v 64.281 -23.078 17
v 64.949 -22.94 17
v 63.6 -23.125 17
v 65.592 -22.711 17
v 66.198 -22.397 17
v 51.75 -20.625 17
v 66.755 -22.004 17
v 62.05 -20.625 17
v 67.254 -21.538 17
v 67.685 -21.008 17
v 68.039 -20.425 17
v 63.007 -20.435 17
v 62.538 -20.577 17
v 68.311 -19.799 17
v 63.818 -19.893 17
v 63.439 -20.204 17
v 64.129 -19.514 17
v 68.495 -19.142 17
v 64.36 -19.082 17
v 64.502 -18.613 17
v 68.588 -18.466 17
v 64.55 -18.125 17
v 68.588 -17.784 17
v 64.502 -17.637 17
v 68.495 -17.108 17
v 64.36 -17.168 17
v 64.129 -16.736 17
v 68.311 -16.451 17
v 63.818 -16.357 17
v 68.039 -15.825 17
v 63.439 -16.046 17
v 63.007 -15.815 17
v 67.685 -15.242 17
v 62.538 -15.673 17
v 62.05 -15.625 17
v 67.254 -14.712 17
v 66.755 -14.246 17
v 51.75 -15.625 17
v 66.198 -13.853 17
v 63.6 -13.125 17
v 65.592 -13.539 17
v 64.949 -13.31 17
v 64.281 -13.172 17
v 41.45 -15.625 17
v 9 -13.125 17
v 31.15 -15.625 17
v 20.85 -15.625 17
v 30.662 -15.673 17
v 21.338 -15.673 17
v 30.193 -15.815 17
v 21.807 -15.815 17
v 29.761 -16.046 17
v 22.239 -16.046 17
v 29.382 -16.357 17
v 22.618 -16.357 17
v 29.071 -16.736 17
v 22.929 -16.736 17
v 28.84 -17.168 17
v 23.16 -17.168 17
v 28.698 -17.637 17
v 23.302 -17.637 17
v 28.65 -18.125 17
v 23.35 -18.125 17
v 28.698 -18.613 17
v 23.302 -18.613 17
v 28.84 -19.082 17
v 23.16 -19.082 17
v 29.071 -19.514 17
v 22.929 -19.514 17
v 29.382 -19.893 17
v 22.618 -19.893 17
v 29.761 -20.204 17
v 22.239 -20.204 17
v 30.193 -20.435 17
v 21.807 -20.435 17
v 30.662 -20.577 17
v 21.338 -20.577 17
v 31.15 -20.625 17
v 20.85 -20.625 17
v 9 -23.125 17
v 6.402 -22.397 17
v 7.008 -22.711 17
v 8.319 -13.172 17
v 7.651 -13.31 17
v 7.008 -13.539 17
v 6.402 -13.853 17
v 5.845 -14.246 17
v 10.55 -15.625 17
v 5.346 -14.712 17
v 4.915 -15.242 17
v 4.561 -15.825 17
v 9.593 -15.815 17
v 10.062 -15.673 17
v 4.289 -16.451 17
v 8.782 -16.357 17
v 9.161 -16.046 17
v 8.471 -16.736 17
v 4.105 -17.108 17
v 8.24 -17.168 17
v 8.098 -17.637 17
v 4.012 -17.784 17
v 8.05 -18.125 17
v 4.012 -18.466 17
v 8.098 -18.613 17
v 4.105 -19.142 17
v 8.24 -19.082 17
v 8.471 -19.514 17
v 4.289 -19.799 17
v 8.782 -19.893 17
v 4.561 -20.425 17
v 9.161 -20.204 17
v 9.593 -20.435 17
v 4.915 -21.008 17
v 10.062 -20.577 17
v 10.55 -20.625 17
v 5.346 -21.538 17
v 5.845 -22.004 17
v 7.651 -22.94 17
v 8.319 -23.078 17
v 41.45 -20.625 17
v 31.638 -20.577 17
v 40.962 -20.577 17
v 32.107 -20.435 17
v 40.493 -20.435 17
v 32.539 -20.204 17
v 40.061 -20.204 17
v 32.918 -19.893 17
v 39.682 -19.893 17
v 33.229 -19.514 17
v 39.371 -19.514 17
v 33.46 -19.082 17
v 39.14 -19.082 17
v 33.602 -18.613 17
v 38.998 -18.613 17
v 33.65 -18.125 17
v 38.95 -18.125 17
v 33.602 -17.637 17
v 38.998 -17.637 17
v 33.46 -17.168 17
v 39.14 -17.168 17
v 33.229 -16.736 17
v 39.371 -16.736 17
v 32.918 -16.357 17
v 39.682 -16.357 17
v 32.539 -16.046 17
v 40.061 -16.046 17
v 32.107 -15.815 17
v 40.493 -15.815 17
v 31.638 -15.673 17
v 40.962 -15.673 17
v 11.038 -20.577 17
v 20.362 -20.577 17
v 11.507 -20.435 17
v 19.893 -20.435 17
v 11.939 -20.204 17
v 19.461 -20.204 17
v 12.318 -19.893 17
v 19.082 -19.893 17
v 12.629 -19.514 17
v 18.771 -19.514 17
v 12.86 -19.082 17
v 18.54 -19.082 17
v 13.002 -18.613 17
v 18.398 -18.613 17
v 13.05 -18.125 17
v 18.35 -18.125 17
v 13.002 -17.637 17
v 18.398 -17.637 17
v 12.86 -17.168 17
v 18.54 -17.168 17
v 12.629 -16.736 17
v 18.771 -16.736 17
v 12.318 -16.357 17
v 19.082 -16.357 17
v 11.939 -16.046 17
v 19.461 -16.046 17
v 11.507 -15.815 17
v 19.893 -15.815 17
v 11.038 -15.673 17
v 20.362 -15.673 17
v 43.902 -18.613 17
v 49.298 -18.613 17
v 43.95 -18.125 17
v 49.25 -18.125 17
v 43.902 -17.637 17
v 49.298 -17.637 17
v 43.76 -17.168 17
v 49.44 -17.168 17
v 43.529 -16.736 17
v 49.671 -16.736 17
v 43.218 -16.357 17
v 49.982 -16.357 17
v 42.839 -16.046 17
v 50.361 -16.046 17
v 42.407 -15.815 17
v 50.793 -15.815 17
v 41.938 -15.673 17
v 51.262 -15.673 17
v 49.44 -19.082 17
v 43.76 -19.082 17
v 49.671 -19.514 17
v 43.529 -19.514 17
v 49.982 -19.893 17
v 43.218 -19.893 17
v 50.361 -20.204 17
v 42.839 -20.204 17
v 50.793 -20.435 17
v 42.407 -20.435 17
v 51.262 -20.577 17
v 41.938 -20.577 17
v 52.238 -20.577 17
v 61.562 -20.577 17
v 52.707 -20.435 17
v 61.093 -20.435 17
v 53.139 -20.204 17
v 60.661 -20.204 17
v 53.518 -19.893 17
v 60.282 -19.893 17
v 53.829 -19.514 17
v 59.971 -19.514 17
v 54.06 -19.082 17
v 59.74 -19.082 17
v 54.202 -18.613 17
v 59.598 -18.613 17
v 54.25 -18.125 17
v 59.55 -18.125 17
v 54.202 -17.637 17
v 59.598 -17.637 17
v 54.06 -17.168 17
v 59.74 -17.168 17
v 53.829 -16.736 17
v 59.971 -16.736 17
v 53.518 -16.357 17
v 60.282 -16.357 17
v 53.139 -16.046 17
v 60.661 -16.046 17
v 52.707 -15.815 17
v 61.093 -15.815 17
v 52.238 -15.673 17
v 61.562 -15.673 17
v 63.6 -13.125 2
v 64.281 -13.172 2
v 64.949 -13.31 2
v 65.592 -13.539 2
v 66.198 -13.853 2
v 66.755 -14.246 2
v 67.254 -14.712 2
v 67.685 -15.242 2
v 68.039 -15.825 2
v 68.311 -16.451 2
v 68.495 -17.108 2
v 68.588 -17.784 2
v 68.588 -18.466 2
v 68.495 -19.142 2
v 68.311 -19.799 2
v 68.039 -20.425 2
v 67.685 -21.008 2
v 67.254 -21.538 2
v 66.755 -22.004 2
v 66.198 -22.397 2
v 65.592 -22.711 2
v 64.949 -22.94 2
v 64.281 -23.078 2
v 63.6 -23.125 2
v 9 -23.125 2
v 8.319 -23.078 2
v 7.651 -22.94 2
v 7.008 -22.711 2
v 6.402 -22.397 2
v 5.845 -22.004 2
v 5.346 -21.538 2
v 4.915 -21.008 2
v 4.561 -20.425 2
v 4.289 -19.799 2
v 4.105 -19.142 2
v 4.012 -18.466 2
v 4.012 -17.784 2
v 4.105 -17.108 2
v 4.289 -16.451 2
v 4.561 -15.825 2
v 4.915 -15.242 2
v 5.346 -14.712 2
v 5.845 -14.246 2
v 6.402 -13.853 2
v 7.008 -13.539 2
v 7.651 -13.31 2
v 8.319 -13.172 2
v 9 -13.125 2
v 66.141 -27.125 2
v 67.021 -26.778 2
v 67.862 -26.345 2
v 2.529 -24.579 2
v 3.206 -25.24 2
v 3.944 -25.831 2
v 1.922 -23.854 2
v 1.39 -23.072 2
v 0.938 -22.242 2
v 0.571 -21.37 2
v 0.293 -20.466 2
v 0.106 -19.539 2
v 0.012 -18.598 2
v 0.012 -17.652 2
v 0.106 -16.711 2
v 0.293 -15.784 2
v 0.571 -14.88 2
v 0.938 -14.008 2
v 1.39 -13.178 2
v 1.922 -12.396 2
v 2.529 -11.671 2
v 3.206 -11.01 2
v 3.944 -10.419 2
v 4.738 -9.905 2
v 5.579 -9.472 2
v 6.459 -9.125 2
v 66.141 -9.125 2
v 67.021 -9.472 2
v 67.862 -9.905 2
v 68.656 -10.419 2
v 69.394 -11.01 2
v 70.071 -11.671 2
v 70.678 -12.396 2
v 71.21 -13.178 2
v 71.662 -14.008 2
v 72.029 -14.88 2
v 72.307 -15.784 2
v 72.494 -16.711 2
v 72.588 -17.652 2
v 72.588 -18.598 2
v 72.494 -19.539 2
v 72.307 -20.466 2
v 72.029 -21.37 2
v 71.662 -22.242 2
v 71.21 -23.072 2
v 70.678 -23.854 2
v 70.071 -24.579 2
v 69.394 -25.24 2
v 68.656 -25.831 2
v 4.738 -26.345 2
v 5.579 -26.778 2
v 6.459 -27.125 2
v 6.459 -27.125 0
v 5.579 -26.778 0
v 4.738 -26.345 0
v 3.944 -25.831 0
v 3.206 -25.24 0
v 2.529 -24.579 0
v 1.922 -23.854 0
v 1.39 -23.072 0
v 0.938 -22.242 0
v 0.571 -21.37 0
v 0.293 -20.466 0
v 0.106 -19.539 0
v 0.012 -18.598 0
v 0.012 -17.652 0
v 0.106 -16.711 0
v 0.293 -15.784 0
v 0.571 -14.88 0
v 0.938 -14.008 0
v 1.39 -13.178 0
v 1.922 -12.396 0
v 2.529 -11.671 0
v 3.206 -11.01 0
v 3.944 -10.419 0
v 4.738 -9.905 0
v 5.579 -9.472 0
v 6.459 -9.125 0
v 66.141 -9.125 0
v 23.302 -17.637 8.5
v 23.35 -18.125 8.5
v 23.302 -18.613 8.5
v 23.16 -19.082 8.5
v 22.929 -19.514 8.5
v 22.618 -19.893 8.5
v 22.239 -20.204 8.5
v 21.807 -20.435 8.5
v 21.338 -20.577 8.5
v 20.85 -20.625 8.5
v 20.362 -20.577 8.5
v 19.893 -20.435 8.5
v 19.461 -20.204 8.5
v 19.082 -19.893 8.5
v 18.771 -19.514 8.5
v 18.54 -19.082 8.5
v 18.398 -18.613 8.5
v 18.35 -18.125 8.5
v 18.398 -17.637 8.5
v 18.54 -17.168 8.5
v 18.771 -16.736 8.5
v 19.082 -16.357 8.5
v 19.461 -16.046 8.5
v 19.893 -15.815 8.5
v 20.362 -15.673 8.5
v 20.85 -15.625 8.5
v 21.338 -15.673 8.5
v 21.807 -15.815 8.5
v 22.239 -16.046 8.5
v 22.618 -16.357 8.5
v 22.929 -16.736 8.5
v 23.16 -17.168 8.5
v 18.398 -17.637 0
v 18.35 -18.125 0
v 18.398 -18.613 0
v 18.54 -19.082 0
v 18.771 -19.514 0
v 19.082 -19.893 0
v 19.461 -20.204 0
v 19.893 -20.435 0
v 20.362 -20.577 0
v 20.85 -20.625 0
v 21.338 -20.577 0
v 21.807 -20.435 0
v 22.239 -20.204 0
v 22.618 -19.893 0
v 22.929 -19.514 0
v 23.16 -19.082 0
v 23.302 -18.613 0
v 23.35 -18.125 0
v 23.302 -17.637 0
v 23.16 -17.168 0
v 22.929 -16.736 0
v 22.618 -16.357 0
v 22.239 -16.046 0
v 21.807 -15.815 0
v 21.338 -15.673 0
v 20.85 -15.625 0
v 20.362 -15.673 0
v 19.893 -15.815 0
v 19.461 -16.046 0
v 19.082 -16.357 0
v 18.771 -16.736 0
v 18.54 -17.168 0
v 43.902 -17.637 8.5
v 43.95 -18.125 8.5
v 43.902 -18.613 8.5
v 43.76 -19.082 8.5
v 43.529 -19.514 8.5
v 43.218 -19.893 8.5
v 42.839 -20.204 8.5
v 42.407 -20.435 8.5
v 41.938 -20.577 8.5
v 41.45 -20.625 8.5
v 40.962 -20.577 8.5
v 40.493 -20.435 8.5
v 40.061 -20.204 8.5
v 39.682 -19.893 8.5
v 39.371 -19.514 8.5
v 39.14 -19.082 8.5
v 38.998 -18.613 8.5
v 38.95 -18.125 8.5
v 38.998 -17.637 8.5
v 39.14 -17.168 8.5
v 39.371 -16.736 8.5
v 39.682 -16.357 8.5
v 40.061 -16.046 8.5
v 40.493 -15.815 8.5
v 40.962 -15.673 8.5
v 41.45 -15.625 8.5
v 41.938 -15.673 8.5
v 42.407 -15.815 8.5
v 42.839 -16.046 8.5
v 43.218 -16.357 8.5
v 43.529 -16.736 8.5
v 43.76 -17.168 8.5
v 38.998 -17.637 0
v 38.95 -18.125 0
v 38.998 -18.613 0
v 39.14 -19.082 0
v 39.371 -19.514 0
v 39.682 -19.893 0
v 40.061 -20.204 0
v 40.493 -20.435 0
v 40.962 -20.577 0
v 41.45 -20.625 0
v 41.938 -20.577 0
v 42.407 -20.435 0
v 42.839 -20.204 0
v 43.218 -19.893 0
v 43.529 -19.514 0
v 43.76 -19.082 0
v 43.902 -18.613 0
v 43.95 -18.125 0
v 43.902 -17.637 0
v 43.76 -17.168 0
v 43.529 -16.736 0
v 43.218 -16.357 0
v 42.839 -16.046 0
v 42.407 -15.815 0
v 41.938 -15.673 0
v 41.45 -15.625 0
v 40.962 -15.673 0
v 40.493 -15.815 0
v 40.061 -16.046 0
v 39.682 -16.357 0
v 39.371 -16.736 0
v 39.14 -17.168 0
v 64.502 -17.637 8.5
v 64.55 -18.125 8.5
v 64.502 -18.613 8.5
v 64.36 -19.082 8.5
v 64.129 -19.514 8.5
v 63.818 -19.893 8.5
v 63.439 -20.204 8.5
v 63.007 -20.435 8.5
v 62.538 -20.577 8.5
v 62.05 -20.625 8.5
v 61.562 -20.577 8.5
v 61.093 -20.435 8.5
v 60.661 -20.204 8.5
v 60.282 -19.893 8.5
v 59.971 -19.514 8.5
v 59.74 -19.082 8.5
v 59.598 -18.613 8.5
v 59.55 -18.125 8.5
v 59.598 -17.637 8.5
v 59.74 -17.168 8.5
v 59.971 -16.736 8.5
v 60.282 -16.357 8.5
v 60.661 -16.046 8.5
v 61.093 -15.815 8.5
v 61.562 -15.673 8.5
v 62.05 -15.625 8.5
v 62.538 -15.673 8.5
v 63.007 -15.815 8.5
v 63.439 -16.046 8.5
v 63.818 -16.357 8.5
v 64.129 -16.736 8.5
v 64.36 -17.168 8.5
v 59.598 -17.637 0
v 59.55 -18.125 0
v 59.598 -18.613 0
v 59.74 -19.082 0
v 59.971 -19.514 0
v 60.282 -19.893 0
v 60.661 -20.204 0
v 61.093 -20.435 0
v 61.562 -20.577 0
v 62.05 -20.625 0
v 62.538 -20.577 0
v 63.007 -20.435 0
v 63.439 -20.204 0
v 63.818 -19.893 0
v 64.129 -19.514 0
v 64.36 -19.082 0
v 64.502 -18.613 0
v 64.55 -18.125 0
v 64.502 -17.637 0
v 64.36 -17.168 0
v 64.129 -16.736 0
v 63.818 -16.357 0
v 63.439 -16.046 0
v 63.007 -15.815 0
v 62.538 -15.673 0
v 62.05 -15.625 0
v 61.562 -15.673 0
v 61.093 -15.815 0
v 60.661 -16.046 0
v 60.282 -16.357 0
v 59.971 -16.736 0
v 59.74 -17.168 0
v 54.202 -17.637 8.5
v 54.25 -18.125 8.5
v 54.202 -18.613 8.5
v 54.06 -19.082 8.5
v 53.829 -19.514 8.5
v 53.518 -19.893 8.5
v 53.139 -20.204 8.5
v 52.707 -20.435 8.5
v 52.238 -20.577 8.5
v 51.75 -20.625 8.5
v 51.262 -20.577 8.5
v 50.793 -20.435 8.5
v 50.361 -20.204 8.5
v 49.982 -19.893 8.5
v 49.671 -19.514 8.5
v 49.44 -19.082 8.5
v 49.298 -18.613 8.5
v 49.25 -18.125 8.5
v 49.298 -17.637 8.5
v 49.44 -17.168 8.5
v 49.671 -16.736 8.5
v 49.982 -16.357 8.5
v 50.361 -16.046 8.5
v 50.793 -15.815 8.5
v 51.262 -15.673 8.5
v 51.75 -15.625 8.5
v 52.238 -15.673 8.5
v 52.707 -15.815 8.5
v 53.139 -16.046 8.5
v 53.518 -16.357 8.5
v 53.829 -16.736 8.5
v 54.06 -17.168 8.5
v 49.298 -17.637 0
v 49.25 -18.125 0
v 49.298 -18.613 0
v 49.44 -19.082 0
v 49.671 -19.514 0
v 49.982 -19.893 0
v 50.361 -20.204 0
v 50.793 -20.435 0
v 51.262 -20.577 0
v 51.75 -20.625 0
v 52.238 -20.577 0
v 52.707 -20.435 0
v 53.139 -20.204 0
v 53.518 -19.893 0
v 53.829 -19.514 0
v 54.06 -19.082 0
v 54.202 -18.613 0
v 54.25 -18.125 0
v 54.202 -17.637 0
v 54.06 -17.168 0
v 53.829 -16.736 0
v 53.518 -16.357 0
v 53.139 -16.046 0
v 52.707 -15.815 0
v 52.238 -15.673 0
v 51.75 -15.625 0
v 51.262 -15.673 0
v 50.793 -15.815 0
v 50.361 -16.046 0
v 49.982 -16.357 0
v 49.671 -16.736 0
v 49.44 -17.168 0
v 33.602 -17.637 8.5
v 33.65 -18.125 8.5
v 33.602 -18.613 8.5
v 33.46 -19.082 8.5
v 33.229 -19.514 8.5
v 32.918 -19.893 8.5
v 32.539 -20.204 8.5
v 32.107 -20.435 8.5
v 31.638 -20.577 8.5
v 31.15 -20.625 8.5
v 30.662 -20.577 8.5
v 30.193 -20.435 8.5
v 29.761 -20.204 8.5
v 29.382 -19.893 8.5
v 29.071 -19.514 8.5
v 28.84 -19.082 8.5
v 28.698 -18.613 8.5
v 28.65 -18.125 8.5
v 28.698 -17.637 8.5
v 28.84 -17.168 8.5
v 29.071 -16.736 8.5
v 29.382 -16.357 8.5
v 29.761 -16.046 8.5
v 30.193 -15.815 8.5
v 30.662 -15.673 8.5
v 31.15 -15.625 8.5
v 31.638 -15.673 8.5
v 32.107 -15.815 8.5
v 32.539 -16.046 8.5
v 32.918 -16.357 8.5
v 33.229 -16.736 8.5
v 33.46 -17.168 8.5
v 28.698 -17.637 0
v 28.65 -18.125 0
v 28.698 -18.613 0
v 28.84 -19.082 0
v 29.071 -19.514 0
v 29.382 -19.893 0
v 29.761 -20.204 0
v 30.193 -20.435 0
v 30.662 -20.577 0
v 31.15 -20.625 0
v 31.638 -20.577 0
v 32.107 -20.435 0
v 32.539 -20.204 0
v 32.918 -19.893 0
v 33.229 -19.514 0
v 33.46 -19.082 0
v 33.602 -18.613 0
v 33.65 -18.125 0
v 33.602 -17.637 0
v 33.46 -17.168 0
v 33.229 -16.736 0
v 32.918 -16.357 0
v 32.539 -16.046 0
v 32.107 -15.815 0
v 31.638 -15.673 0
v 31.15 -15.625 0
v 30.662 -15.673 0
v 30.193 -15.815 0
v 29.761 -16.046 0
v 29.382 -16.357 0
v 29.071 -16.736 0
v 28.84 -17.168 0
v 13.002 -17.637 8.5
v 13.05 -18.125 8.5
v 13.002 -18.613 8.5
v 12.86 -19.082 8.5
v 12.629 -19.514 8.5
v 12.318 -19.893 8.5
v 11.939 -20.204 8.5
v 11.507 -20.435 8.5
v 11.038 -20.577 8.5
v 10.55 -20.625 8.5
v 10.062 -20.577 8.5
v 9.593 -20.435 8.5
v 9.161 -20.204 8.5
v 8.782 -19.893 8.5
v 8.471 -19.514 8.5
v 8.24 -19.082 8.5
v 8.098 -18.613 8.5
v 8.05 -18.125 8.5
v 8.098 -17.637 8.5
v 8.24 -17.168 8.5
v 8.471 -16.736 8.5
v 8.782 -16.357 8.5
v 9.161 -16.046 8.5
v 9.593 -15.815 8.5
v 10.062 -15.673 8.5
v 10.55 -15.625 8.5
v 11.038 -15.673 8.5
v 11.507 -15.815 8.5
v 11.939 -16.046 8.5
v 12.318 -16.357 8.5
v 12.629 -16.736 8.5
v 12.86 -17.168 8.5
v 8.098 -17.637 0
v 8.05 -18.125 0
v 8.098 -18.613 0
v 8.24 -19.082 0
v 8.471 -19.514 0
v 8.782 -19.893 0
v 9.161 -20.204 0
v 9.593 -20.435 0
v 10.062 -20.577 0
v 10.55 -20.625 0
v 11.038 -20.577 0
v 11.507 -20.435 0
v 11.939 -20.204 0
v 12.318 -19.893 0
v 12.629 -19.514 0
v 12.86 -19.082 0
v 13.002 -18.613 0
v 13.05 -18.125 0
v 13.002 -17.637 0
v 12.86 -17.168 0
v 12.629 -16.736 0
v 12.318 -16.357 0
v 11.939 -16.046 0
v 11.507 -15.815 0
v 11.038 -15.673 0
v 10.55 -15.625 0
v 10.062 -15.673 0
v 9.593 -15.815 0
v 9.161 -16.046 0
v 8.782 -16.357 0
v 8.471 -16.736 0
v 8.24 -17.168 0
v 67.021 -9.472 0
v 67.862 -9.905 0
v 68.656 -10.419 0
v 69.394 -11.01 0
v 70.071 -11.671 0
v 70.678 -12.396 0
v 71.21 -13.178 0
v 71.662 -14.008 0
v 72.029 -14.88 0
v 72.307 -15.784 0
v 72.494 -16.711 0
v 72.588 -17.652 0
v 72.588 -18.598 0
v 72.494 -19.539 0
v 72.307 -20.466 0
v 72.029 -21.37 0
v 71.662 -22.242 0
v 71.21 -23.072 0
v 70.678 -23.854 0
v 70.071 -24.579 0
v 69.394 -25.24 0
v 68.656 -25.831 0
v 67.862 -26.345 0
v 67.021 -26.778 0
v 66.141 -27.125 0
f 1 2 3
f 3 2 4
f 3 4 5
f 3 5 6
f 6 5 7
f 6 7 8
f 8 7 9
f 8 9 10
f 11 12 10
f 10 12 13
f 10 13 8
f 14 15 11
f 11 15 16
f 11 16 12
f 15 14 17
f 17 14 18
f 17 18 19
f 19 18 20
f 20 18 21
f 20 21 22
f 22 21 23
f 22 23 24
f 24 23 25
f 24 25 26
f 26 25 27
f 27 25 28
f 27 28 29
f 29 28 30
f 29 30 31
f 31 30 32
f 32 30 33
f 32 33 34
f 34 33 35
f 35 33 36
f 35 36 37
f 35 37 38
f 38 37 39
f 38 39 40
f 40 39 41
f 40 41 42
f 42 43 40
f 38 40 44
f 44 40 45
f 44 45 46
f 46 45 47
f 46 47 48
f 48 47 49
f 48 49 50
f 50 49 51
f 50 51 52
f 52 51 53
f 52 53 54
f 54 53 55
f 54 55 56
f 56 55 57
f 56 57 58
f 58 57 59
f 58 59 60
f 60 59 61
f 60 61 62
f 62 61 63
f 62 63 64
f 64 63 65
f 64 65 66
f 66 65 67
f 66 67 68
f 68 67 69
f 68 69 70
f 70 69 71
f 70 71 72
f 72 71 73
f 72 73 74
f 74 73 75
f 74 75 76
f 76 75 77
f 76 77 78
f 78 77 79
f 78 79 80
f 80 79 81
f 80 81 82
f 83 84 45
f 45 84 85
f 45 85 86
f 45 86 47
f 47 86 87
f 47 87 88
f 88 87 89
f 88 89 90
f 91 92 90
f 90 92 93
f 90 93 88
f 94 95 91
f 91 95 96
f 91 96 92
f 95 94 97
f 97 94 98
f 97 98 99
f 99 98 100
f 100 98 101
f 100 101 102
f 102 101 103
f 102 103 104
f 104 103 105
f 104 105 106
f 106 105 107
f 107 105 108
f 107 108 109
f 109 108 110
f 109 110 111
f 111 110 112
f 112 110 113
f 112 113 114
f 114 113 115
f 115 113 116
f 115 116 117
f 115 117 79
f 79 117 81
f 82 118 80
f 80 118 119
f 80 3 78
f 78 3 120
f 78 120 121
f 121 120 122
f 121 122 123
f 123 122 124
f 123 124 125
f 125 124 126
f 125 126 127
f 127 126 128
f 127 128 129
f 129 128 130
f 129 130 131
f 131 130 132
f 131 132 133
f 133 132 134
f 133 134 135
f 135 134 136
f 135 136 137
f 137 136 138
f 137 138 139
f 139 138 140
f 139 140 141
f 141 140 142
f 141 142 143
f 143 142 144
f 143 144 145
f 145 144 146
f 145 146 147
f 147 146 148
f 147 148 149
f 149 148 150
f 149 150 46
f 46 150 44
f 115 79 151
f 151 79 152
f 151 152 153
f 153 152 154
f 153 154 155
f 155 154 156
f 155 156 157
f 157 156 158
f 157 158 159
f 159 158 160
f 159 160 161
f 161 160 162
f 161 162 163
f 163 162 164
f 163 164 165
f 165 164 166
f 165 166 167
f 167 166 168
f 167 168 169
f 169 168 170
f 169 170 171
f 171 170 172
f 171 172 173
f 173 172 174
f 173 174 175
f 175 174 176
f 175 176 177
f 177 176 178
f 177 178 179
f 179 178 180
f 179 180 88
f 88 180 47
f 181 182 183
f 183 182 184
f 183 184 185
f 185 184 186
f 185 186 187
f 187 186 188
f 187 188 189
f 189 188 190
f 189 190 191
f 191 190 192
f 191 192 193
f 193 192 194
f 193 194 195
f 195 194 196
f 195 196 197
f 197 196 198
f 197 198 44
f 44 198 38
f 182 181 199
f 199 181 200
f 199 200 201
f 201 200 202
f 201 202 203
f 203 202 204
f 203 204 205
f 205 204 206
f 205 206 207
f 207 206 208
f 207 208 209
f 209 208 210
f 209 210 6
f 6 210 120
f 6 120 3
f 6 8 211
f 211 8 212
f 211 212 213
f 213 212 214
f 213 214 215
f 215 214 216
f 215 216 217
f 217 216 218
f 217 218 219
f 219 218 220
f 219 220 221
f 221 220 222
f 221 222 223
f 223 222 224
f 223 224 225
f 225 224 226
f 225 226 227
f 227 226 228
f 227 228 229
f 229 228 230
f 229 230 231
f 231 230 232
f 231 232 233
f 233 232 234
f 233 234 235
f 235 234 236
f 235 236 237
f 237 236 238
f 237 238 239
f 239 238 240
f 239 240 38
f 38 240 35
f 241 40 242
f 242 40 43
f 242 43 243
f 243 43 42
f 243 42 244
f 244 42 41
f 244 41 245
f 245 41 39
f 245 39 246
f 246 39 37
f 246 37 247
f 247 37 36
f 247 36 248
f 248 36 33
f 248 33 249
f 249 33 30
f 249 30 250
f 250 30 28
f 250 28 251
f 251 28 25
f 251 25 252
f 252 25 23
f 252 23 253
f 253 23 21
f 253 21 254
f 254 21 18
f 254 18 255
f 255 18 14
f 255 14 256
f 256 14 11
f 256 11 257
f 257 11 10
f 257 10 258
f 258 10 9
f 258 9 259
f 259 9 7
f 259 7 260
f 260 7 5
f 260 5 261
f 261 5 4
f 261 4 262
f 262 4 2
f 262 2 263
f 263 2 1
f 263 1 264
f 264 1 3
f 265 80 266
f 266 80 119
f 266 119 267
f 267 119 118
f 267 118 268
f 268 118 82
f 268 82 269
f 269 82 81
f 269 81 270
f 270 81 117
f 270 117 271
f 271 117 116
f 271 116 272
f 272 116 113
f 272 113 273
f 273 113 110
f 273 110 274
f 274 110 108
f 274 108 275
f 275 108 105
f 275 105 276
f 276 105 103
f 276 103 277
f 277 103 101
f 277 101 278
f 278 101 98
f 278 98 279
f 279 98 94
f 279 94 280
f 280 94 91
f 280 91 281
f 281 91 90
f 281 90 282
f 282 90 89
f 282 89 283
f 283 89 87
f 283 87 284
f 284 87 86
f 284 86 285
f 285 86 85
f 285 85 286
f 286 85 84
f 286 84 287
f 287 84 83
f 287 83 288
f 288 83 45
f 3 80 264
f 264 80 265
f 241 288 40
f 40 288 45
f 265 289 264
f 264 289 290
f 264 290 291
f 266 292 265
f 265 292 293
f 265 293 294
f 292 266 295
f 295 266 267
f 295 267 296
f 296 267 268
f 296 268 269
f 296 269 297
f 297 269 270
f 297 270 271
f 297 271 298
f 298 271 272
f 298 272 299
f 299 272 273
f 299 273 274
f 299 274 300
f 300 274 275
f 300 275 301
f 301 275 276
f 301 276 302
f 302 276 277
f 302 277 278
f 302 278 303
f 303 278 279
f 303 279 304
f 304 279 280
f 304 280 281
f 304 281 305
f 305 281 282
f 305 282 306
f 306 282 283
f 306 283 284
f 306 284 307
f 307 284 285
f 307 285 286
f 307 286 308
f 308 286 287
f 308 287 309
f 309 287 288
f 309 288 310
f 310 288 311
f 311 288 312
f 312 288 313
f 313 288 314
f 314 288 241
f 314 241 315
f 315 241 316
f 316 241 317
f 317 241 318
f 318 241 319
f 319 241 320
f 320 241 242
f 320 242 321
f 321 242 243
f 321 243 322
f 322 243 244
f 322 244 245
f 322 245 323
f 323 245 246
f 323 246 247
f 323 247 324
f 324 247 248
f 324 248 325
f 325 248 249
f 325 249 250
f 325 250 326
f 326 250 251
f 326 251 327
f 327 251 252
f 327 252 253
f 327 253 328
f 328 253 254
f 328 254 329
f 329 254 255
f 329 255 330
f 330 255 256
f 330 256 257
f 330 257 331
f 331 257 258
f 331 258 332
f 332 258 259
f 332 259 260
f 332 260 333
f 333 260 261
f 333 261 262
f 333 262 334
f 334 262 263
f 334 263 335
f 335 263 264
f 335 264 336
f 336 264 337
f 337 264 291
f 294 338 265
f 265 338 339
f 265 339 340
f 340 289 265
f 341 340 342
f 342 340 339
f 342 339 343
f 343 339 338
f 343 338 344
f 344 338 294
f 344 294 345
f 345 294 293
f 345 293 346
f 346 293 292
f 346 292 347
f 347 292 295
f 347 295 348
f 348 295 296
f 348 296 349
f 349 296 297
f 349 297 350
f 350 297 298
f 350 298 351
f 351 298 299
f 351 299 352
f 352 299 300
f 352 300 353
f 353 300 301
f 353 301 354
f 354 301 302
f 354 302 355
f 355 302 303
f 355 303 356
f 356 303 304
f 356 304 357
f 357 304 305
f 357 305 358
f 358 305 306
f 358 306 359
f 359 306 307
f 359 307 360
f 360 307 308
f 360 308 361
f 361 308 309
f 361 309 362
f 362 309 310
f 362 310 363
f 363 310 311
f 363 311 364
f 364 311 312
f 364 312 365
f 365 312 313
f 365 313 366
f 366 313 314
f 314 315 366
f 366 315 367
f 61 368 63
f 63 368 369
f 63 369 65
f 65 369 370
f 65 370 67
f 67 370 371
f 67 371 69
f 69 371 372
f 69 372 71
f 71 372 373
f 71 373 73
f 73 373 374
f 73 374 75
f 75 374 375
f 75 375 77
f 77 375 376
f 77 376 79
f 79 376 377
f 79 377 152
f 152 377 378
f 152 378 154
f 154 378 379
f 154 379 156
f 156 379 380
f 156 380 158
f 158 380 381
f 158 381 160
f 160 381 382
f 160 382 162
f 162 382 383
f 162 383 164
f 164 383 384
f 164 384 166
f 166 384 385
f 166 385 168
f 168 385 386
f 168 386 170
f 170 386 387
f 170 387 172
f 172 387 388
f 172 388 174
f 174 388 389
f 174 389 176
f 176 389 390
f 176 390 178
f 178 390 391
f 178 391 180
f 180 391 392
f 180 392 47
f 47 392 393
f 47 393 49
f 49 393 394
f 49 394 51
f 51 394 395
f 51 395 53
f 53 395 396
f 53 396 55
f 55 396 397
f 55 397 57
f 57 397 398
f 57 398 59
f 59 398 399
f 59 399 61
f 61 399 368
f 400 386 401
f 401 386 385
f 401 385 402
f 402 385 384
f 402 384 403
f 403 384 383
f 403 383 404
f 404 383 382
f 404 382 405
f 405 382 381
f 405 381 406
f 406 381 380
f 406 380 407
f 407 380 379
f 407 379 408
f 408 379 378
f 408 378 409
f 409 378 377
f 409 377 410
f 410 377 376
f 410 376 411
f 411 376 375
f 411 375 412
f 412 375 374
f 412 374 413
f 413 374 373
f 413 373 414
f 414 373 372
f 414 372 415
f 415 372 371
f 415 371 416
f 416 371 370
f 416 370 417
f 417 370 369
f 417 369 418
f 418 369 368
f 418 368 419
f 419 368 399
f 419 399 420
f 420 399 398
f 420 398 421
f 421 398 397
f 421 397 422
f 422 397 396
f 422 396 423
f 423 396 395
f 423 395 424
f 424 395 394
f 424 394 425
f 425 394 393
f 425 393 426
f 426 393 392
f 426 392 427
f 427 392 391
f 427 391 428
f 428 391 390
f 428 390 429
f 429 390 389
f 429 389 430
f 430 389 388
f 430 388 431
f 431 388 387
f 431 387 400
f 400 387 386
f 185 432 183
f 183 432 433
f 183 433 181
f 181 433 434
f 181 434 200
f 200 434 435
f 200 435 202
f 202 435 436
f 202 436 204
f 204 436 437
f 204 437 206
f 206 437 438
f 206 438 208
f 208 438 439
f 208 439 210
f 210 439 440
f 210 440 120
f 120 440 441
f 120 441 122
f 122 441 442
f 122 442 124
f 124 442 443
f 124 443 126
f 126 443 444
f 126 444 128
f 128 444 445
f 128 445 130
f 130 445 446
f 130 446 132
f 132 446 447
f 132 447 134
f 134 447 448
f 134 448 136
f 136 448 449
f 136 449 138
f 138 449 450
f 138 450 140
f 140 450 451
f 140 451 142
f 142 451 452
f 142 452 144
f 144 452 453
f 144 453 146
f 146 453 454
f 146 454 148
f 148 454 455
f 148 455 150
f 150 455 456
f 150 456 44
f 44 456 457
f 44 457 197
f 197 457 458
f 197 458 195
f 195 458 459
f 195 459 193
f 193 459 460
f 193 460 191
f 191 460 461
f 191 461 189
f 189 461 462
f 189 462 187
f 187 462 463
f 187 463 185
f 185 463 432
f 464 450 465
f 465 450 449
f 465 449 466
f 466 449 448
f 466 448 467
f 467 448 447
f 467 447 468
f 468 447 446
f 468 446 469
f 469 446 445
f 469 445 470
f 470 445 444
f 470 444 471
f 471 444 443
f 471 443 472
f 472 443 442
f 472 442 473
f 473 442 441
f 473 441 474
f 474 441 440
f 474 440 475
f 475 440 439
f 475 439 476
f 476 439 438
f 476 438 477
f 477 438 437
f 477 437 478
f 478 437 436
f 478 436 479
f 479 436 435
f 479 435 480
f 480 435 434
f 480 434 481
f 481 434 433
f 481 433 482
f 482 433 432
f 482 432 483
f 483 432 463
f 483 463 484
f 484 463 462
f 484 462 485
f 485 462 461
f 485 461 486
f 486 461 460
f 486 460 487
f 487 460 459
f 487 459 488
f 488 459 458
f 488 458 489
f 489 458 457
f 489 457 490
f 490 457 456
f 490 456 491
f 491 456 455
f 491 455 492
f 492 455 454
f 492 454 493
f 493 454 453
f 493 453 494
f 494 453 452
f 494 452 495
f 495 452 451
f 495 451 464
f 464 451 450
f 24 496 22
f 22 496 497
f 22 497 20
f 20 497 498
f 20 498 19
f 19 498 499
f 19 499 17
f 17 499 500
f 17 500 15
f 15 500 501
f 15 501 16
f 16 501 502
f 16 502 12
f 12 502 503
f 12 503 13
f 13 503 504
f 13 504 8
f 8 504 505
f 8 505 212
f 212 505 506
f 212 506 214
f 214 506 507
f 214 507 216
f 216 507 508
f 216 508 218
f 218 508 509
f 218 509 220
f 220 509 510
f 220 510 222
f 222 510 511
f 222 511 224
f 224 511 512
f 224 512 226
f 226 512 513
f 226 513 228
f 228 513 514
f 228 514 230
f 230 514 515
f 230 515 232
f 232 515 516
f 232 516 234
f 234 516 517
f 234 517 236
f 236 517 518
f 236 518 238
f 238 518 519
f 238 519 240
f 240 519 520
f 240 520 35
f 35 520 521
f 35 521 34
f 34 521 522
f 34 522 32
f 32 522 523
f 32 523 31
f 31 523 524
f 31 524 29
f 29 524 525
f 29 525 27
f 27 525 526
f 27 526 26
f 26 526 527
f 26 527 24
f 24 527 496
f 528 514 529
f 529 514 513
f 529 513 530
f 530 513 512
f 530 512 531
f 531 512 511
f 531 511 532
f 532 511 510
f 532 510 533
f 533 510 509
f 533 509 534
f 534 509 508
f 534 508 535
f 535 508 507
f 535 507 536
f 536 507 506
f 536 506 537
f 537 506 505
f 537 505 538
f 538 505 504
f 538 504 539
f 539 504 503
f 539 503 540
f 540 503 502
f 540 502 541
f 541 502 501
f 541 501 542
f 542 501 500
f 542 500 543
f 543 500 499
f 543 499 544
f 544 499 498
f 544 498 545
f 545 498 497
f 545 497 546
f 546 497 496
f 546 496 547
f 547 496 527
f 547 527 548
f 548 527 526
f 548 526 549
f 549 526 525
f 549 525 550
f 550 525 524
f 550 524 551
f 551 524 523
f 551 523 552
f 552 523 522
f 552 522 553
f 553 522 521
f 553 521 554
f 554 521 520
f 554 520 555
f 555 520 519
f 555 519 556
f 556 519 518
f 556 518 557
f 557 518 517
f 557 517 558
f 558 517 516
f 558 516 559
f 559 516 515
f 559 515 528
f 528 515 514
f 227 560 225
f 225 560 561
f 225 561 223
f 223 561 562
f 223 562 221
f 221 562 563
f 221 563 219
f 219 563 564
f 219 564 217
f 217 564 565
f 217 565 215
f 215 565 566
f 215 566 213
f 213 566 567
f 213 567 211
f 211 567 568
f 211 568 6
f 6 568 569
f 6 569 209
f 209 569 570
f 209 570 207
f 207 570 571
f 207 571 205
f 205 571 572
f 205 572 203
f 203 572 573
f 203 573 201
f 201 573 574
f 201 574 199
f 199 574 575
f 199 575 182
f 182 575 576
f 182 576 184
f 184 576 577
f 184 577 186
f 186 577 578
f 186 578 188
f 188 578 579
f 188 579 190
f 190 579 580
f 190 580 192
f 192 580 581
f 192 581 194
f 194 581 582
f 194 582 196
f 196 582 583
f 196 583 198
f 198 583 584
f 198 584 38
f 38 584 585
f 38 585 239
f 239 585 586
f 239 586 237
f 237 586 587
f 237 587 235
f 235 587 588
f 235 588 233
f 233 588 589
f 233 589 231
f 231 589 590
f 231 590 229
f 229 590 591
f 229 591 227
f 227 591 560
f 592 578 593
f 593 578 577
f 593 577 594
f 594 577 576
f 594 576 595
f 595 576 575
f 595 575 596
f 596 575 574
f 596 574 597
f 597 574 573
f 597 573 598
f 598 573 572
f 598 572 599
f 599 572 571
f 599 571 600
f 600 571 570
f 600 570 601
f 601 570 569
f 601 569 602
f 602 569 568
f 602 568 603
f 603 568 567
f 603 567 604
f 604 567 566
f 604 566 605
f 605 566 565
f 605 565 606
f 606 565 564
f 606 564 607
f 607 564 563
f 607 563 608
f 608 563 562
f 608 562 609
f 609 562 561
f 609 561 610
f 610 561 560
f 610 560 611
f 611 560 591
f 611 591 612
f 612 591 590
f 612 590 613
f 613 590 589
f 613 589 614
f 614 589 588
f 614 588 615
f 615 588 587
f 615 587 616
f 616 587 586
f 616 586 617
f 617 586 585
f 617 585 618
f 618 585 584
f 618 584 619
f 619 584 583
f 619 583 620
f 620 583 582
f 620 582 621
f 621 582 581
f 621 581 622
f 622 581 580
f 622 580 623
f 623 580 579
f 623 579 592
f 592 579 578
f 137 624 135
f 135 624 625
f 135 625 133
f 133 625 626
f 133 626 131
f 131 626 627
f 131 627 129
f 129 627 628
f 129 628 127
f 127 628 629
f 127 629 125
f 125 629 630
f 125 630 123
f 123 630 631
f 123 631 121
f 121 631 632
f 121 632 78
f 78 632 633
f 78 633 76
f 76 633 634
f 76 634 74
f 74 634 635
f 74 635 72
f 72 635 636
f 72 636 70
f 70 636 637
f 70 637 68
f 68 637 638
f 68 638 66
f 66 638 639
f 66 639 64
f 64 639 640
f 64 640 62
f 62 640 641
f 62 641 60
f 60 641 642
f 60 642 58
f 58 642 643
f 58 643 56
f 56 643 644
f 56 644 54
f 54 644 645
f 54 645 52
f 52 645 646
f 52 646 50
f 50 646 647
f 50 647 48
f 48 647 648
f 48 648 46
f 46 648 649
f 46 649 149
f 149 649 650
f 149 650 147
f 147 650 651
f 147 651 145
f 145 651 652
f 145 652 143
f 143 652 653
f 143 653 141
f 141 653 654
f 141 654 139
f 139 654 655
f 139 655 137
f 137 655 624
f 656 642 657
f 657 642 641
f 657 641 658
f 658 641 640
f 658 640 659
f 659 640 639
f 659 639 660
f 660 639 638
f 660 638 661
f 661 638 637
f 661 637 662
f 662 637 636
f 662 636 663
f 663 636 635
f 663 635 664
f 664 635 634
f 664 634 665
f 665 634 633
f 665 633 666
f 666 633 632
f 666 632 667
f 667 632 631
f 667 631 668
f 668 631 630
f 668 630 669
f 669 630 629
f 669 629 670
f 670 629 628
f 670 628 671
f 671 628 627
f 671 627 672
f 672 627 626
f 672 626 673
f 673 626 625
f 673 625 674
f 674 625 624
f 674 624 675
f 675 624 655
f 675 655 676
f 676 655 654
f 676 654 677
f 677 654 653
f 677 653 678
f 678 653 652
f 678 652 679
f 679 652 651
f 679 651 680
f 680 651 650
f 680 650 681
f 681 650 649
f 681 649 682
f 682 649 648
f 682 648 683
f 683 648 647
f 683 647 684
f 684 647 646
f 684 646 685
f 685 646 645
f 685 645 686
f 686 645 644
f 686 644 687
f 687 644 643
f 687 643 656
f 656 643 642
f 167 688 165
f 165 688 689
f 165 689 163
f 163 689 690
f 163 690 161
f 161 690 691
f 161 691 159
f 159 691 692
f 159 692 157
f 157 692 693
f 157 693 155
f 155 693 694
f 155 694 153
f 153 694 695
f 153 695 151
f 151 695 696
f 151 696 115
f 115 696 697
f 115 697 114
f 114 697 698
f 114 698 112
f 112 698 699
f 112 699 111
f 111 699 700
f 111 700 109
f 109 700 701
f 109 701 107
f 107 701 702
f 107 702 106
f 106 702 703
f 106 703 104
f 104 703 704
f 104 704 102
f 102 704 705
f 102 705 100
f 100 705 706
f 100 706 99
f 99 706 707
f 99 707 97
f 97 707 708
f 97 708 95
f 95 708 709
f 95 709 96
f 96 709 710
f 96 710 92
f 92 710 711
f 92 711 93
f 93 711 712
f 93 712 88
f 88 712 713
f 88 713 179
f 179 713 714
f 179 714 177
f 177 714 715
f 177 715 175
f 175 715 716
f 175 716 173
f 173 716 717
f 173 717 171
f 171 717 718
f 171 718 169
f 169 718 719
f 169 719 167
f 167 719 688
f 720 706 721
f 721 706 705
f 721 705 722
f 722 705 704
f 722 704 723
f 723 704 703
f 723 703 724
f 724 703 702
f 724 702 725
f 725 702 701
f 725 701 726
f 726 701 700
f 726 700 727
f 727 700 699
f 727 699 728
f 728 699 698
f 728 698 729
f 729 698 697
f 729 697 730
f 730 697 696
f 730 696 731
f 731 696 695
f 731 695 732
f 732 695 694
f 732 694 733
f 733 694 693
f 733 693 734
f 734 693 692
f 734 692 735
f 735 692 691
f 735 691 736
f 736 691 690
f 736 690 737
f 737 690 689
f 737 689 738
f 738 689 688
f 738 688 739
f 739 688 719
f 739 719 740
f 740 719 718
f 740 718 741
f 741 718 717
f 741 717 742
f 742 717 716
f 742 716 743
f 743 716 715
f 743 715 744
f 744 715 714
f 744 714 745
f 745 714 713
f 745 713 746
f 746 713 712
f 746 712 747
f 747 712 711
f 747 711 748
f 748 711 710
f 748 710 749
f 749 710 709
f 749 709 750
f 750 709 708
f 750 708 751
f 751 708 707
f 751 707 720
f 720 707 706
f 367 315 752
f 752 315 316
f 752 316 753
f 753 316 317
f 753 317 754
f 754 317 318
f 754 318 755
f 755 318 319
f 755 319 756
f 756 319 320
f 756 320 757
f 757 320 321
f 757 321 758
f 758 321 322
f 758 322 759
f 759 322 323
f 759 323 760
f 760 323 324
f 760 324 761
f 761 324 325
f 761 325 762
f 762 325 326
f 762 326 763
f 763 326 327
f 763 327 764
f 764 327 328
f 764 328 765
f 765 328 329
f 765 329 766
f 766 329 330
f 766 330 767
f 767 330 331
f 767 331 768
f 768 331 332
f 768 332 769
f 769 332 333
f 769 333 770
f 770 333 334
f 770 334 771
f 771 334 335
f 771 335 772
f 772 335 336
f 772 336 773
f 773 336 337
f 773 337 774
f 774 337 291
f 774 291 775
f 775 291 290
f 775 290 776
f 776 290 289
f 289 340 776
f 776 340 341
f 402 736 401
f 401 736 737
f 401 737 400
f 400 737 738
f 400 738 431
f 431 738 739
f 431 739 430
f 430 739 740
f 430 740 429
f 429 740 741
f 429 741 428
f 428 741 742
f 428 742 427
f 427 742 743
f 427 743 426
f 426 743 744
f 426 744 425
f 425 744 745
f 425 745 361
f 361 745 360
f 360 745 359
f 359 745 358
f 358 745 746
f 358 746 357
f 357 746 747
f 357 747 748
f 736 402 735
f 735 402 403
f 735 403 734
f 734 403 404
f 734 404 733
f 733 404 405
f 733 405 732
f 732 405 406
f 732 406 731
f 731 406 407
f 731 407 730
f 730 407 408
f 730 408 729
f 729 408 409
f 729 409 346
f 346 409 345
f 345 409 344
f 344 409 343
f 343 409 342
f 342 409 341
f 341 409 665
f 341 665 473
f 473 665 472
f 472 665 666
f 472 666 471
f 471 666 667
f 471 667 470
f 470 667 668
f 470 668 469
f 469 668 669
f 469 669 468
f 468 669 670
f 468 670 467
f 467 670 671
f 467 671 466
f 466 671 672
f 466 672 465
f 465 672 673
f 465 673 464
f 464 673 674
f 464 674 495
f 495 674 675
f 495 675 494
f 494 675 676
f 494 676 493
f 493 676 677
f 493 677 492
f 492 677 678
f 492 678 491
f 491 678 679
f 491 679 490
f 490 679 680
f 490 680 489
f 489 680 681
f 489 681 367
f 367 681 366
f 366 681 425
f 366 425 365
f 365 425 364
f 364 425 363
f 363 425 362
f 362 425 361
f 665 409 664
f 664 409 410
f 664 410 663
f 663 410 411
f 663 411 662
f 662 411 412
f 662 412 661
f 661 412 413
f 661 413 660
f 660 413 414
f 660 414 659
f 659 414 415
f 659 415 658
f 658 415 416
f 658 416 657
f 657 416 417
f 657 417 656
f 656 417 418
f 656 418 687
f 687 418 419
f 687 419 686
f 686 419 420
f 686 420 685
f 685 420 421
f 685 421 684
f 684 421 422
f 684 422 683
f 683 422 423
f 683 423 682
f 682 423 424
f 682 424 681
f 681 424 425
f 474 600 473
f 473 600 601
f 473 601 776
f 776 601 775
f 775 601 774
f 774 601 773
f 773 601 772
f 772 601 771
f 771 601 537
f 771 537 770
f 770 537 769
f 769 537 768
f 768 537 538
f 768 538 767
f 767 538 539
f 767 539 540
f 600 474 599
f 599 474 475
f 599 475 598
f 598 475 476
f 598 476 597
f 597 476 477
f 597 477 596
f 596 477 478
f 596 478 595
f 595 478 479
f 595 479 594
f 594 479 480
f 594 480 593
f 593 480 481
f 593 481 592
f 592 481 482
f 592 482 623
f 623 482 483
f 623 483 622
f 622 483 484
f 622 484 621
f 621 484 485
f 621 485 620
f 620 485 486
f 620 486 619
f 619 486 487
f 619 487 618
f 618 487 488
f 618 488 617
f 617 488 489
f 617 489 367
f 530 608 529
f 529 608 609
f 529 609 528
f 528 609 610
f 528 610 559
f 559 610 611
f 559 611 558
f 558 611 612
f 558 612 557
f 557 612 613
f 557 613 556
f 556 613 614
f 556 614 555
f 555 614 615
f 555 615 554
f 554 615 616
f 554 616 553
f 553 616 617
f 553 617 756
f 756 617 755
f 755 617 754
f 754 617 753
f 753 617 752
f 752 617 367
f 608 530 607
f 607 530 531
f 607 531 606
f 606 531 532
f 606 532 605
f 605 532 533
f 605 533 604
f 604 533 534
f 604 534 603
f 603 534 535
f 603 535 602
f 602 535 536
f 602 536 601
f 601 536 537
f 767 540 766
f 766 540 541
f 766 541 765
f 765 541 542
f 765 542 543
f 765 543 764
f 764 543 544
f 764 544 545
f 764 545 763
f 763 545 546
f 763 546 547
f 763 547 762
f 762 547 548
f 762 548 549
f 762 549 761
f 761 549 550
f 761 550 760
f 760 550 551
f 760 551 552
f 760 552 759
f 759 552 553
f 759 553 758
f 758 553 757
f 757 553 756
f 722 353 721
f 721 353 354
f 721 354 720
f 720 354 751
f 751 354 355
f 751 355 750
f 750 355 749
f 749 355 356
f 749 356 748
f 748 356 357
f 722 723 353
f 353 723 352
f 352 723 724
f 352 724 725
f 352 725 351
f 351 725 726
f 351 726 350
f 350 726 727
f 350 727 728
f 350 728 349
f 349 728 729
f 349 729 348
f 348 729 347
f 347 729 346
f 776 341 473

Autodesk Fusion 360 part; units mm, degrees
sketch "スケッチ1" plane through (0, 0, 0) normal (0, 0, 1) x (1, 0, 0)
  line L0 (0, 0) -> (72.6, 0)
  line L1 (72.6, 0) -> (72.6, -36.25)
  line L2 (72.6, -36.25) -> (0, -36.25)
  line L3 (0, -36.25) -> (0, 0)
  line L4 (36.3, 0) -> (36.3, -36.25)
  line L5 (0, -18.125) -> (72.6, -18.125)
  line L6 (72.6, -8.625) -> (72.6, -26.625)
  line L7 (58.3, -36.25) -> (14.3, -36.25)
  line L8 (0, -9.125) -> (0, -27.125)
  line L9 (0, -18.125) -> (9.5, -18.125)
  line L10 (0, -9.125) -> (6.4586, -9.125)
  line L11 (0, -27.125) -> (4.6488, -27.125)
  line L12 (6.4586, -9.125) -> (36.3, 0)
  line L13 (14.3, -36.25) -> (12.3, -36.25)
  line L14 (12.3, -36.25) -> (2.2204, -24.2289)
  line L15 (36.3, -18.125) -> (36.3, -32.425)
  line L16 (36.3, -18.125) -> (36.3, -3.825)
  line L17 (66.1414, -9.125) -> (36.3, 0)
  line L18 (60.3, -36.25) -> (70.3796, -24.2289)
  line L19 (58.3, -36.25) -> (60.3, -36.25)
  line L20 (6.4586, -27.125) -> (66.1414, -27.125)
  line L21 (6.4586, -9.125) -> (66.1414, -9.125)
  arc A0 (6.9878, -8.9632) -> (6.4586, -27.125) centre (9.5, -18.125) ccw
  arc A1 (66.1414, -27.125) -> (65.6122, -8.9632) centre (63.1, -18.125) ccw
  circle A2 centre (14.3, -32.425) radius 1.75
  circle A3 centre (36.3, -3.825) radius 1.75
  circle A4 centre (58.3, -32.425) radius 1.75
  circle A5 centre (32.3, -32.425) radius 1
  circle A6 centre (40.3, -32.425) radius 1
  point P0 (36.3, -18.125)
  point P1 (36.3, -3.825)
  point P2 (14.3, -32.425)
  point P3 (58.3, -32.425)
  point P4 (40.3, -32.425)
  point P5 (40.3, -32.425)
  point P6 (32.3, -32.425)
  dimension "d5" = 72.6
  dimension "d6" = 36.25
  dimension "d10" = 44
  dimension "d11" = 9
  dimension "d12" = 18
  dimension "d13" = 9.5
  dimension "d14" = 2
  dimension "d15" = 14.3
  dimension "d16" = 22
  dimension "d17" = 14.3
  dimension "d18" = 3.5
  dimension "d19" = 3.5
  dimension "d20" = 3.5
  dimension "d21" = 4
  dimension "d24" = 2
  dimension "d25" = 2
extrude "押し出し2" add sketch "スケッチ1" along normal blind 17 contours L4 L5 L9 L16 L21 A0 | L4 L5 L9 L15 L20 A0 | L4 L5 L16 L21 A1 | L4 L5 L15 L20 A1
sketch "スケッチ3" plane through (0, 0, 0) normal (0, 0, -1) x (1, 0, 0)
  arc A0 (6.4586, 27.125) -> (6.4586, 9.125) centre (9.5, 18.125) ccw
  line L0 (6.4586, 9.125) -> (66.1414, 9.125)
  arc A1 (66.1414, 9.125) -> (66.1414, 27.125) centre (63.1, 18.125) ccw
  line L1 (66.1414, 27.125) -> (6.4586, 27.125)
  line L2 (72.6, 18.125) -> (0, 18.125)
  line L3 (72.6, 18.125) -> (36.3, 18.125)
  line L4 (36.3, 18.125) -> (31.15, 18.125)
  line L5 (31.15, 18.125) -> (20.85, 18.125)
  line L6 (20.85, 18.125) -> (10.55, 18.125)
  line L7 (36.3, 18.125) -> (36.3, 27.125)
  point P0 (36.3, 18.125)
  point P1 (31.15, 18.125)
  point P2 (20.85, 18.125)
  point P3 (10.55, 18.125)
  point P4 (41.45, 18.125)
  point P5 (51.75, 18.125)
  point P6 (62.05, 18.125)
  dimension "d32" = 5.15
  dimension "d33" = 10.3
  dimension "d34" = 10.3
hole "穴1" at (62.05, -18.125, 0) at (51.75, -18.125, 0) at (41.45, -18.125, 0) at (31.15, -18.125, 0) at (20.85, -18.125, 0) at (10.55, -18.125, 0) direction (0, 0, 1) diameter 5 depth 23 tip angle 180
sketch "スケッチ4" plane through (0, 0, 17) normal (0, 0, 1) x (-1, 0, 0)
  circle A0 centre (-20.85, 18.125) radius 2.5
  circle A1 centre (-41.45, 18.125) radius 2.5
  circle A2 centre (-62.05, 18.125) radius 2.5
  circle A3 centre (-51.75, 18.125) radius 2.5
  circle A4 centre (-31.15, 18.125) radius 2.5
  circle A5 centre (-10.55, 18.125) radius 2.5
  arc A6 (-6.4586, 9.125) -> (-6.4586, 27.125) centre (-9.5, 18.125) ccw
  line L0 (-6.4586, 27.125) -> (-66.1414, 27.125)
  arc A7 (-66.1414, 27.125) -> (-66.1414, 9.125) centre (-63.1, 18.125) ccw
  line L1 (-66.1414, 9.125) -> (-6.4586, 9.125)
  line L2 (0, 18.125) -> (-4, 18.125)
  line L3 (-36.3, 13.125) -> (-5.4223, 13.125)
  line L4 (-4, 18.125) -> (-13.5, 18.125)
  line L5 (-36.3, 23.125) -> (-5.4223, 23.125)
  line L6 (-36.3, 23.125) -> (-36.3, 27.125)
  arc A8 (-5.4223, 13.125) -> (-5.4223, 23.125) centre (-13.5, 18.125) ccw
  line L7 (-36.3, 13.125) -> (-67.1777, 13.125)
  arc A9 (-67.1777, 23.125) -> (-67.1777, 13.125) centre (-59.1, 18.125) ccw
  line L8 (-36.3, 23.125) -> (-67.1777, 23.125)
  line L9 (-36.3, 23.125) -> (-36.3, 13.125)
  line L10 (-31.15, 18.125) -> (-41.45, 18.125)
  point P0 (-68.6, 18.125)
  dimension "d39" = 9.5
  dimension "d40" = 4
  dimension "d45" = 4
  dimension "d46" = 5
  dimension "d47" = 9.5
  dimension "d48" = 10.3
extrude "押し出し3" cut sketch "スケッチ4" against normal blind 15 contours A6 L0 L2 L5 L6 A8 | A6 L0 A7 L1 L2 L3 L6 A8 L7 A9 L8
fillet "フィレット2" radius 5 4 edges at (5.4223, -23.125, 9.5) (5.4223, -13.125, 9.5) (67.1777, -13.125, 9.5) (67.1777, -23.125, 9.5)
